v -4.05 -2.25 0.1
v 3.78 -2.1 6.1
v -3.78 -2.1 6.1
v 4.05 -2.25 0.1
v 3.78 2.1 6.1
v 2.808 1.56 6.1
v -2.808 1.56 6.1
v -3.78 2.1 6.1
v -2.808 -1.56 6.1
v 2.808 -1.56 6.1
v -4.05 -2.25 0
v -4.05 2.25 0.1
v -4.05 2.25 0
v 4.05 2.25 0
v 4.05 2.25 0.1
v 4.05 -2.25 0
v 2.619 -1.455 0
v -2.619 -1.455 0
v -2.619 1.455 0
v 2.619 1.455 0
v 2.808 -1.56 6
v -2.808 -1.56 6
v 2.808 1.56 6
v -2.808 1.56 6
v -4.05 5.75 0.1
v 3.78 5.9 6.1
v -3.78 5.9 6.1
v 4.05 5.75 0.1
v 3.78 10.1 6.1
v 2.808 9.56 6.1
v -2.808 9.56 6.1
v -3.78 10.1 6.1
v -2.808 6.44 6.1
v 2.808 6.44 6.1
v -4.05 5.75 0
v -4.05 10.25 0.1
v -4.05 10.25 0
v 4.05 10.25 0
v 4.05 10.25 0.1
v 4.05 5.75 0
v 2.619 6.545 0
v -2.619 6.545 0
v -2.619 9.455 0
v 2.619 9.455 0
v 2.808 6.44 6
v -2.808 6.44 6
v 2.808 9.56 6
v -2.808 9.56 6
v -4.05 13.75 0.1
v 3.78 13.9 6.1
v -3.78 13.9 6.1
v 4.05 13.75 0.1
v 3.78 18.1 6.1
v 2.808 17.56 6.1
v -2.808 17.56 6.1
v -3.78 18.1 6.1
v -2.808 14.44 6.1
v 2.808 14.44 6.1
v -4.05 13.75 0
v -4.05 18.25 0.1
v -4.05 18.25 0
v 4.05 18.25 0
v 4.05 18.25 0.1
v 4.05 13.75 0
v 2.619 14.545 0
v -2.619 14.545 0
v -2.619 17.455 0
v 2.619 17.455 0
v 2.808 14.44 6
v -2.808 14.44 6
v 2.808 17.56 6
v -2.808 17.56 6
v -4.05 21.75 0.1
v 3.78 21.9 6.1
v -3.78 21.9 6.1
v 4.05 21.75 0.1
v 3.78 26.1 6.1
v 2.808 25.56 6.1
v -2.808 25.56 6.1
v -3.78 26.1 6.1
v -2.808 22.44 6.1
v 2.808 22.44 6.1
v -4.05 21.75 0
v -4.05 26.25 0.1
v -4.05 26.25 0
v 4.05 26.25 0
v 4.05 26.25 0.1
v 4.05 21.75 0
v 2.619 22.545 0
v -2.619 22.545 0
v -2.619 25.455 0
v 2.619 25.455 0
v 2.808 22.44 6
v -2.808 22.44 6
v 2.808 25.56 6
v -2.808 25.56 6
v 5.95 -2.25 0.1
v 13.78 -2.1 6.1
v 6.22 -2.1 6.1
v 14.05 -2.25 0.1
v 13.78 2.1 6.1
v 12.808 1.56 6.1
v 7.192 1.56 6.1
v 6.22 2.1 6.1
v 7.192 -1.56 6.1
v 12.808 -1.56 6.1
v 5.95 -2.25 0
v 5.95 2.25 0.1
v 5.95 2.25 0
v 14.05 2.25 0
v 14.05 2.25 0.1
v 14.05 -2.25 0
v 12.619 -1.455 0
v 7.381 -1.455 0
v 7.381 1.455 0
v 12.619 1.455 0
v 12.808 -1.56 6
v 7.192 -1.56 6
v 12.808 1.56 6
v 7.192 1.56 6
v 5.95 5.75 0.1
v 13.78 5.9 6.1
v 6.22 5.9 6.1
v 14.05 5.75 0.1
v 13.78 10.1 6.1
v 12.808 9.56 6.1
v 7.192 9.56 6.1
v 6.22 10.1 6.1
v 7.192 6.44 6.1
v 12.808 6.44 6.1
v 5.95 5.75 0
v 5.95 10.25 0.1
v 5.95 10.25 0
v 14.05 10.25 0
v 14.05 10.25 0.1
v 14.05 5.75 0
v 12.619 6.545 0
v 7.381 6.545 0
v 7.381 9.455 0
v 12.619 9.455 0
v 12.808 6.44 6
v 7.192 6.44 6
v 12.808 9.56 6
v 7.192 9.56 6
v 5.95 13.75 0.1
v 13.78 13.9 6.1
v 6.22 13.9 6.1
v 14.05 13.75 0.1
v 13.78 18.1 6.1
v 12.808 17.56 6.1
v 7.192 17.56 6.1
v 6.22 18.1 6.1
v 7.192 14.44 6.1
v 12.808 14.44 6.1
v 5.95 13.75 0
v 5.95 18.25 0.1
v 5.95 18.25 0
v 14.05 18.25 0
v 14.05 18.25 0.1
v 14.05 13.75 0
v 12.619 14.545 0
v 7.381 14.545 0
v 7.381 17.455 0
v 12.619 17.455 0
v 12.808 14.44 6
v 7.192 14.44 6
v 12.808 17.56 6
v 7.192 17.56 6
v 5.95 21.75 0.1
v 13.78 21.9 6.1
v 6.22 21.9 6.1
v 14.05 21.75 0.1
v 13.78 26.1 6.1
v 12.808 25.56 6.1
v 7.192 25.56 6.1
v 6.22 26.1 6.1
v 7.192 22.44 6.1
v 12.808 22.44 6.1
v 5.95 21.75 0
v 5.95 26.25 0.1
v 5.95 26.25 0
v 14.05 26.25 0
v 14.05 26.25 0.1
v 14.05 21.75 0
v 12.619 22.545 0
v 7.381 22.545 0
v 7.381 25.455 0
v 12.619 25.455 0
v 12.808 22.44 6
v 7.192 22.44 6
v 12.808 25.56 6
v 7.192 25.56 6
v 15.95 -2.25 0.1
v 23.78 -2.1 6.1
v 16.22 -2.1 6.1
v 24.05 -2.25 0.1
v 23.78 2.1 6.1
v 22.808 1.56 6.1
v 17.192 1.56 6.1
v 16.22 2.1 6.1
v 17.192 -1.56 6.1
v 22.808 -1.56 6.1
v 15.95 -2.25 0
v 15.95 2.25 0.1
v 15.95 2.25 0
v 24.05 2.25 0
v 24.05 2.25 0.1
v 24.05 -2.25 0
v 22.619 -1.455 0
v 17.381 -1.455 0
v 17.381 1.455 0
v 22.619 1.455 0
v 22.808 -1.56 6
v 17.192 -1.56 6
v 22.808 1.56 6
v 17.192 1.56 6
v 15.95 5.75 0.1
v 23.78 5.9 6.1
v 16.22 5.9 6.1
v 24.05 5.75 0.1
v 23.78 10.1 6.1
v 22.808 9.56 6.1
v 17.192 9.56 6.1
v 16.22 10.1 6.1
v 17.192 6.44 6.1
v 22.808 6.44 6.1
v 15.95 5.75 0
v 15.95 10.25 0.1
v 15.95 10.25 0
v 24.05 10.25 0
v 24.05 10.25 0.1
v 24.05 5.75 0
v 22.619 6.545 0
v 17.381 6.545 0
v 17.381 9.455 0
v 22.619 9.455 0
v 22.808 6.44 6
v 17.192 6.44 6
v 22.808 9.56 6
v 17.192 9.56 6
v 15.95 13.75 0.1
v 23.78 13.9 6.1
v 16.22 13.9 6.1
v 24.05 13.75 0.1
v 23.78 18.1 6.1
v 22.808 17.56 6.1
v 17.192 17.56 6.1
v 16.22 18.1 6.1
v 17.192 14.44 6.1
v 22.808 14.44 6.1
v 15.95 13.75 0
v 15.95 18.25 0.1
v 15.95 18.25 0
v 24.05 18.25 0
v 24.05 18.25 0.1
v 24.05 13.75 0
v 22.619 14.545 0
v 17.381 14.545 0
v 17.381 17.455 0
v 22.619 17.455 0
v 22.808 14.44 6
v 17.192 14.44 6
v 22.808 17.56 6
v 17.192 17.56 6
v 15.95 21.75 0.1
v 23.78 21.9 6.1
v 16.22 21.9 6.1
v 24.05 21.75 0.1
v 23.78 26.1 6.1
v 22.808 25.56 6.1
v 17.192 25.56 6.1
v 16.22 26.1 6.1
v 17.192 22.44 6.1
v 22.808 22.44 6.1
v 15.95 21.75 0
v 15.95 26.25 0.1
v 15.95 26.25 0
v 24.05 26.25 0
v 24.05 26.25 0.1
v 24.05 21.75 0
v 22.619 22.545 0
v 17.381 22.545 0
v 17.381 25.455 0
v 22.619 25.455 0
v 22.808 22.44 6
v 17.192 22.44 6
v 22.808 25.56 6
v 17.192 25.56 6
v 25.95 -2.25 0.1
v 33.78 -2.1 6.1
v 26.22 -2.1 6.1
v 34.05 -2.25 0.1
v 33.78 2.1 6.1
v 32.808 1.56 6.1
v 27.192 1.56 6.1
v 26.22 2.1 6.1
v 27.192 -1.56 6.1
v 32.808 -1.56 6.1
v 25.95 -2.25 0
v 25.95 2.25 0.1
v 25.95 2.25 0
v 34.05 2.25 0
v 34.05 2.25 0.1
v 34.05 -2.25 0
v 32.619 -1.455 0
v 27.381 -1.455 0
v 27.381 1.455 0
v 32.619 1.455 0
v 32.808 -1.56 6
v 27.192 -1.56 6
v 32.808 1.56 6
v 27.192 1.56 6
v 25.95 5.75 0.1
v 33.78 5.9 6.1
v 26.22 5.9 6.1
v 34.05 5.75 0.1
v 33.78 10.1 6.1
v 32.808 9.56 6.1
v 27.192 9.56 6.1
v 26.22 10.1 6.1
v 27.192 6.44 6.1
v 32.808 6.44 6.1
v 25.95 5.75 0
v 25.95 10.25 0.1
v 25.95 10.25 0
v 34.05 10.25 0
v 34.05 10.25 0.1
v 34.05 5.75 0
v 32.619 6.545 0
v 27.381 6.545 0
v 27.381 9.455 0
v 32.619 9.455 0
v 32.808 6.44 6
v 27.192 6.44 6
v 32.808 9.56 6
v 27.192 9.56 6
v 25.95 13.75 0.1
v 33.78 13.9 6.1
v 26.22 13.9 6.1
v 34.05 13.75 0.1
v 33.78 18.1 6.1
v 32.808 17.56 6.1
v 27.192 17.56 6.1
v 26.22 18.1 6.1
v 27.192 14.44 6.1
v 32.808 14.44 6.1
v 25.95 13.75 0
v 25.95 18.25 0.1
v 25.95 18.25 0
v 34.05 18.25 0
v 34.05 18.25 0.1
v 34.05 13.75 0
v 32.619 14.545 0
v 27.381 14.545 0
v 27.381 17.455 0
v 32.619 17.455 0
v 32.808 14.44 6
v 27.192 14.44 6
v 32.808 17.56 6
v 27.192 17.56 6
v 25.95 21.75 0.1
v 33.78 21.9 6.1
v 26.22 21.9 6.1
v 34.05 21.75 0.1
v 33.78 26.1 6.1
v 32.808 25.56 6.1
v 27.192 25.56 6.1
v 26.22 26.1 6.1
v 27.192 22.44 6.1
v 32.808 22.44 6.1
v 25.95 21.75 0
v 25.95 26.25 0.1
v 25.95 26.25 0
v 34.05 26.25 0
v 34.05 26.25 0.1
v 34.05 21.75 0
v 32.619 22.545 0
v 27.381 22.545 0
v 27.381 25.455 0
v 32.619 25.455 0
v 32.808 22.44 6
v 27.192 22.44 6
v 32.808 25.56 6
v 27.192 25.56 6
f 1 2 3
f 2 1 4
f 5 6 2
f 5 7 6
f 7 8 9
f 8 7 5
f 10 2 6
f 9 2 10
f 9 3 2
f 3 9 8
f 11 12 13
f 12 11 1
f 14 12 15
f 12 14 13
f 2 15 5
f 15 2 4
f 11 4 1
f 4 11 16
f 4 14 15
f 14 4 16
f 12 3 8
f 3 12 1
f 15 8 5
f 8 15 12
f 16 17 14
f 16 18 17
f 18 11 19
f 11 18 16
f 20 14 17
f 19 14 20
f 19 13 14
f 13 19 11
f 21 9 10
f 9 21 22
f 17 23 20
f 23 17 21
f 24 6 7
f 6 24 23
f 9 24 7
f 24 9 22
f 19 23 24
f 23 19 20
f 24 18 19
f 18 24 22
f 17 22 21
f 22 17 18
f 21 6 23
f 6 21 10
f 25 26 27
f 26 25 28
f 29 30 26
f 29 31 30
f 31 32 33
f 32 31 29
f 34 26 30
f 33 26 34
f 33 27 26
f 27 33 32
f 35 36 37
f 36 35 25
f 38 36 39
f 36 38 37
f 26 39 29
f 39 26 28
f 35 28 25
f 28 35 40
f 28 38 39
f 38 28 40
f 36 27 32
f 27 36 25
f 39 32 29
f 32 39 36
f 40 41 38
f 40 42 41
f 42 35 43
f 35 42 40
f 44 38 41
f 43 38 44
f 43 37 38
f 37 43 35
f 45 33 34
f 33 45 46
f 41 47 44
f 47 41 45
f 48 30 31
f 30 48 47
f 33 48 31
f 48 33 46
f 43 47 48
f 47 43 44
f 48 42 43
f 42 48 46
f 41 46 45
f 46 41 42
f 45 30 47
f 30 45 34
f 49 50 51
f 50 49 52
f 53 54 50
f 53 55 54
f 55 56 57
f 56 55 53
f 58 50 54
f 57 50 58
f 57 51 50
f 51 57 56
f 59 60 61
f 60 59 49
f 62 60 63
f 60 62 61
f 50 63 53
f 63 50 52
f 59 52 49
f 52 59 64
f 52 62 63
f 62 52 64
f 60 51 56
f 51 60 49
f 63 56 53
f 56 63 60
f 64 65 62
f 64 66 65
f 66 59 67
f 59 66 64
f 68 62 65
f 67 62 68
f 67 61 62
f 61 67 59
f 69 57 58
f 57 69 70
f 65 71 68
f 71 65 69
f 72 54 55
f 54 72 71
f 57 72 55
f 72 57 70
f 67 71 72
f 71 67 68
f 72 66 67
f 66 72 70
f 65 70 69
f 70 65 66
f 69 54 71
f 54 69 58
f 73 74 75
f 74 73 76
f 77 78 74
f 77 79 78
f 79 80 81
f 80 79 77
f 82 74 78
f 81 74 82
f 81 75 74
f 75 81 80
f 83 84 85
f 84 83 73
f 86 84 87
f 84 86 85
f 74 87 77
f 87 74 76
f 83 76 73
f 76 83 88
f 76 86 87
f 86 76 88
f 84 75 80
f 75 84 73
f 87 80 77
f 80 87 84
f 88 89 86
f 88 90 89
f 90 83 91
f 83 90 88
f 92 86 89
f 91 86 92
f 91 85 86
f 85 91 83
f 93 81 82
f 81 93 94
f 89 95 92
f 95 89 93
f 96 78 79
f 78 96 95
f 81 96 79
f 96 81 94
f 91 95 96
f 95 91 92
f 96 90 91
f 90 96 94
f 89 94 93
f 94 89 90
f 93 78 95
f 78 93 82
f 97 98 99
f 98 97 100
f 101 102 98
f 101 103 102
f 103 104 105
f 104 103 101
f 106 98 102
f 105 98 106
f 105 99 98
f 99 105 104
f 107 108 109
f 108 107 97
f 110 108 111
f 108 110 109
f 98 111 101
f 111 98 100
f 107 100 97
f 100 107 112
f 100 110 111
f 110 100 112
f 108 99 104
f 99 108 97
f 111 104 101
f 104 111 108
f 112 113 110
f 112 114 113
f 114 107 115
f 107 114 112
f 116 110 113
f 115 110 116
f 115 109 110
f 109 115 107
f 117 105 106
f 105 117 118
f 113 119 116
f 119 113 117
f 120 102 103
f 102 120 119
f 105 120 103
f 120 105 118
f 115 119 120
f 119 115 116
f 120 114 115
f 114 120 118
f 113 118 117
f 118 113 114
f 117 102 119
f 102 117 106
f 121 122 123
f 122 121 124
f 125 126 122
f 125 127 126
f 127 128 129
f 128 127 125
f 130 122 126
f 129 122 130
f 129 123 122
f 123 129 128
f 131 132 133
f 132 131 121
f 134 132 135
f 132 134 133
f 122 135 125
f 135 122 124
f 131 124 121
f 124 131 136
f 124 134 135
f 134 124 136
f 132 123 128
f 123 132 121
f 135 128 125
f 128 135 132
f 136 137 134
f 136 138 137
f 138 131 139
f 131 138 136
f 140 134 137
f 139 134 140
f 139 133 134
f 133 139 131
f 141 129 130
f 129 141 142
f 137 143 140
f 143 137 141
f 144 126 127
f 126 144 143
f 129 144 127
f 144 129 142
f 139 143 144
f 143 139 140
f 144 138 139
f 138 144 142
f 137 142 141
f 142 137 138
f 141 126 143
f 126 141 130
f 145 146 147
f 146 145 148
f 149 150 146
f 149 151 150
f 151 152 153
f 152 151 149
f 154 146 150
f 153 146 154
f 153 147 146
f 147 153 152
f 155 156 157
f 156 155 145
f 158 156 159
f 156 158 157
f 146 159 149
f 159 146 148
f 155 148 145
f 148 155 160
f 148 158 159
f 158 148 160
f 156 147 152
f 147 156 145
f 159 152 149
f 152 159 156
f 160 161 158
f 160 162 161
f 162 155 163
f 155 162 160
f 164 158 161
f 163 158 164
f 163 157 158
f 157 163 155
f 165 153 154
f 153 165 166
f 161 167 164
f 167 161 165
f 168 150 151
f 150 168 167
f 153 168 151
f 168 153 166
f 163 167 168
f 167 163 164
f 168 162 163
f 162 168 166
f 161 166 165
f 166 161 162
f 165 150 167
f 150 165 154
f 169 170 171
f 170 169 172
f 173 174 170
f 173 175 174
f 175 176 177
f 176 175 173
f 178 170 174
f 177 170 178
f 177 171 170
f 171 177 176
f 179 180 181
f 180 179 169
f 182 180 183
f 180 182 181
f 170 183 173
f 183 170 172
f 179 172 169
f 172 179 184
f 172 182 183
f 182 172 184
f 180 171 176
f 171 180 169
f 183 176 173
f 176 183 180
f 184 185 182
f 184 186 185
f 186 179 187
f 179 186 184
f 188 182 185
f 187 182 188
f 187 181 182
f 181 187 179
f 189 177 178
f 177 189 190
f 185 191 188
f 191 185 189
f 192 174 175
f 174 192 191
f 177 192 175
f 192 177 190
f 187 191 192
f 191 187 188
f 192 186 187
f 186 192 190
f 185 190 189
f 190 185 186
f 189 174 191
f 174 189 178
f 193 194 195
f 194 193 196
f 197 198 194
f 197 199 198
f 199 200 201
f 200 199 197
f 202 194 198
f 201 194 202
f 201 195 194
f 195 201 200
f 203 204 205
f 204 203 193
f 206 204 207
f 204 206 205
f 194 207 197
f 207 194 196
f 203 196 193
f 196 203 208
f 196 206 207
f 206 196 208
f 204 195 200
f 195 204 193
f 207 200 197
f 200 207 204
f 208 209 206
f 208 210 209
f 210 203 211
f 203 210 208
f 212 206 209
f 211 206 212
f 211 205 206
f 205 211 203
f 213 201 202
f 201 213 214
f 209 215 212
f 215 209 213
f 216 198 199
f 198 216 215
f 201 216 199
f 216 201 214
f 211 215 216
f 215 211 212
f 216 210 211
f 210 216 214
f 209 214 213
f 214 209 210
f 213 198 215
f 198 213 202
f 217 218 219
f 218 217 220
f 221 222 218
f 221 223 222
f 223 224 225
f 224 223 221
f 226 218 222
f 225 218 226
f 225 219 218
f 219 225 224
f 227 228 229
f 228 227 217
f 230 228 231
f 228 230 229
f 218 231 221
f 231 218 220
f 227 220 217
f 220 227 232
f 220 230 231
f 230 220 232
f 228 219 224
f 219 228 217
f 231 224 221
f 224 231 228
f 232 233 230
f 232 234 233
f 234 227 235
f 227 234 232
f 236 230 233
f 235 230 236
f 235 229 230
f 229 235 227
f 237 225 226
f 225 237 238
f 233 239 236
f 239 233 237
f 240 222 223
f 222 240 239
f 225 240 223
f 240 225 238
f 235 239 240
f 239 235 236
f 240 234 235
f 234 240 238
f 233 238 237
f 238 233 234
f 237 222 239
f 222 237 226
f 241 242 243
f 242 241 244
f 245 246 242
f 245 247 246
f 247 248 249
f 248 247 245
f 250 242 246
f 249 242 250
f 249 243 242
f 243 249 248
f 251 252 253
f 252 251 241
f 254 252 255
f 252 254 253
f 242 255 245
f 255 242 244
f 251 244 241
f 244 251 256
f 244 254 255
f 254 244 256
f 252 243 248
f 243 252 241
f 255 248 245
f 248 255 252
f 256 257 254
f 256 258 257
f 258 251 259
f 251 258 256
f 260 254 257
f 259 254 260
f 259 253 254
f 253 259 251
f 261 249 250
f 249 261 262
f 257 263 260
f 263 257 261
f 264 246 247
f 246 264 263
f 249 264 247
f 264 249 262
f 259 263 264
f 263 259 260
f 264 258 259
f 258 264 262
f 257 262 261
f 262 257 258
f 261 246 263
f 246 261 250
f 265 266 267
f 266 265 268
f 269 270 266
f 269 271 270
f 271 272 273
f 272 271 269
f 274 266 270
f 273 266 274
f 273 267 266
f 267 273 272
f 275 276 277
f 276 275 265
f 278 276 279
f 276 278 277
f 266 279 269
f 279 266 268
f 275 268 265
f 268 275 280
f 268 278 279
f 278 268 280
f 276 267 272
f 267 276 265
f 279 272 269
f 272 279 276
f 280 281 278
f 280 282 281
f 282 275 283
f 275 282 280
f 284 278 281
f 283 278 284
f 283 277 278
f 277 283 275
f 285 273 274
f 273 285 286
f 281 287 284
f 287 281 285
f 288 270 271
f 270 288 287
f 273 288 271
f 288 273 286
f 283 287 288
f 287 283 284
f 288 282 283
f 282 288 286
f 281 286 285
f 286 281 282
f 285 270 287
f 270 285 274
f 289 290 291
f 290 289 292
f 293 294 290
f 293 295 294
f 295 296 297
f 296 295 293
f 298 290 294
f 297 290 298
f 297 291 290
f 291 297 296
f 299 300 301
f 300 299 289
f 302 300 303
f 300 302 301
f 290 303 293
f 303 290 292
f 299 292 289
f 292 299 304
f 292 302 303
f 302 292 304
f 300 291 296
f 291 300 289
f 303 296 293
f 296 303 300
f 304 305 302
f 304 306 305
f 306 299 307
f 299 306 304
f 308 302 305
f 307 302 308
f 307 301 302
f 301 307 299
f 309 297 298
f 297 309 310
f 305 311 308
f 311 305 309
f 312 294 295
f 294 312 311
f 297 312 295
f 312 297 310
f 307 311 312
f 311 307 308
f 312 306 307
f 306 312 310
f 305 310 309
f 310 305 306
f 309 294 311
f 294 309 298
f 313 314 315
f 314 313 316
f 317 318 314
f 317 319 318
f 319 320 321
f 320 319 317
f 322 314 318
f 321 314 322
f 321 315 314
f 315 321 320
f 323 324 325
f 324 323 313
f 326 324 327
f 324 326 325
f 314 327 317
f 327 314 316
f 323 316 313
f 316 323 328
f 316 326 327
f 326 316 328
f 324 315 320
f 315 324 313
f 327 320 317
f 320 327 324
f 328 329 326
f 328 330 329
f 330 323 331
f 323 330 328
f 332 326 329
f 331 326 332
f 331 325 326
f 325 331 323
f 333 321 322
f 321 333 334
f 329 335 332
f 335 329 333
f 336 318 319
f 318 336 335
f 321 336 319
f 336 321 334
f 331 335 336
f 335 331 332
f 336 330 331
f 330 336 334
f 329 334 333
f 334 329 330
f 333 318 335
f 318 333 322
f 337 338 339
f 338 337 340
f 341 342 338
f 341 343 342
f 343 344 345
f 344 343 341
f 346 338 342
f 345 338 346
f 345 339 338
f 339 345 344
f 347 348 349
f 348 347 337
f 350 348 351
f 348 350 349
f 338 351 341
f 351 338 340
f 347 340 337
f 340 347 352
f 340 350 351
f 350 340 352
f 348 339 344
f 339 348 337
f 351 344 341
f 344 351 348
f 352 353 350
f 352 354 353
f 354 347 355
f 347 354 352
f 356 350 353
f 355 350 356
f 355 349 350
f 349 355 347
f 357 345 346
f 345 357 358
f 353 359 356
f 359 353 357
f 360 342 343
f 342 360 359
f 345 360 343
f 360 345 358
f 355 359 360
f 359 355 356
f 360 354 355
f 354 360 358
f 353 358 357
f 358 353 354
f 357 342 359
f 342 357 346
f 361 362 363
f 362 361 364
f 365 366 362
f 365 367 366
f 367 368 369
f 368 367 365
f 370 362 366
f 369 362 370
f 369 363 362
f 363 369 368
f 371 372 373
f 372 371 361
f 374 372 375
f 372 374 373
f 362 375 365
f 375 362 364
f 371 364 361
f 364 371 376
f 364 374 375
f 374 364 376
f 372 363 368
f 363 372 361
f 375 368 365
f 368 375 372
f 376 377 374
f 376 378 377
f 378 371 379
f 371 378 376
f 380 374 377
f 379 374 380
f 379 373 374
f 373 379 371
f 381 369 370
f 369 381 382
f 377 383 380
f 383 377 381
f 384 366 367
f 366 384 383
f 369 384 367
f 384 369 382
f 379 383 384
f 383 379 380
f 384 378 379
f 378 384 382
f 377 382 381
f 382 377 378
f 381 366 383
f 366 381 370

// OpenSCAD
// 5.43mm wide 3.06mm tall 9mm tip


ww=5.4;
hh=3.0;
zz=6;

iota=.1;
module flat() {
}

module outside() {
    // bigger on bottom
    ifaca=1.5;
    ifacb=1.4;
    hull() {
        translate([-ww*ifaca/2,-hh*ifaca/2,0]) linear_extrude(iota) square([ww*ifaca,hh*ifaca]);
        translate([-ww*ifacb/2,-hh*ifacb/2,zz]) linear_extrude(iota) square([ww*ifacb,hh*ifacb]);
    }
}


module inside() {
    // bigger on top
    ifaca=.97;
    ifacb=1.04;
    hull() {
        translate([-ww*ifaca/2,-hh*ifaca/2,0]) linear_extrude(iota) square([ww*ifaca,hh*ifaca]);
        translate([-ww*ifacb/2,-hh*ifacb/2,zz]) linear_extrude(iota) square([ww*ifacb,hh*ifacb]);
    }
}

module bottom() {
}

module main() {
    difference() {
        outside();
        translate([0,0,0]) inside();
    }
}

module several(n) {
    for (i = [0:n-1]) {
        for (j = [0:n-1]) {
            translate([10*i,8*j,0]) main();
        }   
    }
}
//main();
several(4);
